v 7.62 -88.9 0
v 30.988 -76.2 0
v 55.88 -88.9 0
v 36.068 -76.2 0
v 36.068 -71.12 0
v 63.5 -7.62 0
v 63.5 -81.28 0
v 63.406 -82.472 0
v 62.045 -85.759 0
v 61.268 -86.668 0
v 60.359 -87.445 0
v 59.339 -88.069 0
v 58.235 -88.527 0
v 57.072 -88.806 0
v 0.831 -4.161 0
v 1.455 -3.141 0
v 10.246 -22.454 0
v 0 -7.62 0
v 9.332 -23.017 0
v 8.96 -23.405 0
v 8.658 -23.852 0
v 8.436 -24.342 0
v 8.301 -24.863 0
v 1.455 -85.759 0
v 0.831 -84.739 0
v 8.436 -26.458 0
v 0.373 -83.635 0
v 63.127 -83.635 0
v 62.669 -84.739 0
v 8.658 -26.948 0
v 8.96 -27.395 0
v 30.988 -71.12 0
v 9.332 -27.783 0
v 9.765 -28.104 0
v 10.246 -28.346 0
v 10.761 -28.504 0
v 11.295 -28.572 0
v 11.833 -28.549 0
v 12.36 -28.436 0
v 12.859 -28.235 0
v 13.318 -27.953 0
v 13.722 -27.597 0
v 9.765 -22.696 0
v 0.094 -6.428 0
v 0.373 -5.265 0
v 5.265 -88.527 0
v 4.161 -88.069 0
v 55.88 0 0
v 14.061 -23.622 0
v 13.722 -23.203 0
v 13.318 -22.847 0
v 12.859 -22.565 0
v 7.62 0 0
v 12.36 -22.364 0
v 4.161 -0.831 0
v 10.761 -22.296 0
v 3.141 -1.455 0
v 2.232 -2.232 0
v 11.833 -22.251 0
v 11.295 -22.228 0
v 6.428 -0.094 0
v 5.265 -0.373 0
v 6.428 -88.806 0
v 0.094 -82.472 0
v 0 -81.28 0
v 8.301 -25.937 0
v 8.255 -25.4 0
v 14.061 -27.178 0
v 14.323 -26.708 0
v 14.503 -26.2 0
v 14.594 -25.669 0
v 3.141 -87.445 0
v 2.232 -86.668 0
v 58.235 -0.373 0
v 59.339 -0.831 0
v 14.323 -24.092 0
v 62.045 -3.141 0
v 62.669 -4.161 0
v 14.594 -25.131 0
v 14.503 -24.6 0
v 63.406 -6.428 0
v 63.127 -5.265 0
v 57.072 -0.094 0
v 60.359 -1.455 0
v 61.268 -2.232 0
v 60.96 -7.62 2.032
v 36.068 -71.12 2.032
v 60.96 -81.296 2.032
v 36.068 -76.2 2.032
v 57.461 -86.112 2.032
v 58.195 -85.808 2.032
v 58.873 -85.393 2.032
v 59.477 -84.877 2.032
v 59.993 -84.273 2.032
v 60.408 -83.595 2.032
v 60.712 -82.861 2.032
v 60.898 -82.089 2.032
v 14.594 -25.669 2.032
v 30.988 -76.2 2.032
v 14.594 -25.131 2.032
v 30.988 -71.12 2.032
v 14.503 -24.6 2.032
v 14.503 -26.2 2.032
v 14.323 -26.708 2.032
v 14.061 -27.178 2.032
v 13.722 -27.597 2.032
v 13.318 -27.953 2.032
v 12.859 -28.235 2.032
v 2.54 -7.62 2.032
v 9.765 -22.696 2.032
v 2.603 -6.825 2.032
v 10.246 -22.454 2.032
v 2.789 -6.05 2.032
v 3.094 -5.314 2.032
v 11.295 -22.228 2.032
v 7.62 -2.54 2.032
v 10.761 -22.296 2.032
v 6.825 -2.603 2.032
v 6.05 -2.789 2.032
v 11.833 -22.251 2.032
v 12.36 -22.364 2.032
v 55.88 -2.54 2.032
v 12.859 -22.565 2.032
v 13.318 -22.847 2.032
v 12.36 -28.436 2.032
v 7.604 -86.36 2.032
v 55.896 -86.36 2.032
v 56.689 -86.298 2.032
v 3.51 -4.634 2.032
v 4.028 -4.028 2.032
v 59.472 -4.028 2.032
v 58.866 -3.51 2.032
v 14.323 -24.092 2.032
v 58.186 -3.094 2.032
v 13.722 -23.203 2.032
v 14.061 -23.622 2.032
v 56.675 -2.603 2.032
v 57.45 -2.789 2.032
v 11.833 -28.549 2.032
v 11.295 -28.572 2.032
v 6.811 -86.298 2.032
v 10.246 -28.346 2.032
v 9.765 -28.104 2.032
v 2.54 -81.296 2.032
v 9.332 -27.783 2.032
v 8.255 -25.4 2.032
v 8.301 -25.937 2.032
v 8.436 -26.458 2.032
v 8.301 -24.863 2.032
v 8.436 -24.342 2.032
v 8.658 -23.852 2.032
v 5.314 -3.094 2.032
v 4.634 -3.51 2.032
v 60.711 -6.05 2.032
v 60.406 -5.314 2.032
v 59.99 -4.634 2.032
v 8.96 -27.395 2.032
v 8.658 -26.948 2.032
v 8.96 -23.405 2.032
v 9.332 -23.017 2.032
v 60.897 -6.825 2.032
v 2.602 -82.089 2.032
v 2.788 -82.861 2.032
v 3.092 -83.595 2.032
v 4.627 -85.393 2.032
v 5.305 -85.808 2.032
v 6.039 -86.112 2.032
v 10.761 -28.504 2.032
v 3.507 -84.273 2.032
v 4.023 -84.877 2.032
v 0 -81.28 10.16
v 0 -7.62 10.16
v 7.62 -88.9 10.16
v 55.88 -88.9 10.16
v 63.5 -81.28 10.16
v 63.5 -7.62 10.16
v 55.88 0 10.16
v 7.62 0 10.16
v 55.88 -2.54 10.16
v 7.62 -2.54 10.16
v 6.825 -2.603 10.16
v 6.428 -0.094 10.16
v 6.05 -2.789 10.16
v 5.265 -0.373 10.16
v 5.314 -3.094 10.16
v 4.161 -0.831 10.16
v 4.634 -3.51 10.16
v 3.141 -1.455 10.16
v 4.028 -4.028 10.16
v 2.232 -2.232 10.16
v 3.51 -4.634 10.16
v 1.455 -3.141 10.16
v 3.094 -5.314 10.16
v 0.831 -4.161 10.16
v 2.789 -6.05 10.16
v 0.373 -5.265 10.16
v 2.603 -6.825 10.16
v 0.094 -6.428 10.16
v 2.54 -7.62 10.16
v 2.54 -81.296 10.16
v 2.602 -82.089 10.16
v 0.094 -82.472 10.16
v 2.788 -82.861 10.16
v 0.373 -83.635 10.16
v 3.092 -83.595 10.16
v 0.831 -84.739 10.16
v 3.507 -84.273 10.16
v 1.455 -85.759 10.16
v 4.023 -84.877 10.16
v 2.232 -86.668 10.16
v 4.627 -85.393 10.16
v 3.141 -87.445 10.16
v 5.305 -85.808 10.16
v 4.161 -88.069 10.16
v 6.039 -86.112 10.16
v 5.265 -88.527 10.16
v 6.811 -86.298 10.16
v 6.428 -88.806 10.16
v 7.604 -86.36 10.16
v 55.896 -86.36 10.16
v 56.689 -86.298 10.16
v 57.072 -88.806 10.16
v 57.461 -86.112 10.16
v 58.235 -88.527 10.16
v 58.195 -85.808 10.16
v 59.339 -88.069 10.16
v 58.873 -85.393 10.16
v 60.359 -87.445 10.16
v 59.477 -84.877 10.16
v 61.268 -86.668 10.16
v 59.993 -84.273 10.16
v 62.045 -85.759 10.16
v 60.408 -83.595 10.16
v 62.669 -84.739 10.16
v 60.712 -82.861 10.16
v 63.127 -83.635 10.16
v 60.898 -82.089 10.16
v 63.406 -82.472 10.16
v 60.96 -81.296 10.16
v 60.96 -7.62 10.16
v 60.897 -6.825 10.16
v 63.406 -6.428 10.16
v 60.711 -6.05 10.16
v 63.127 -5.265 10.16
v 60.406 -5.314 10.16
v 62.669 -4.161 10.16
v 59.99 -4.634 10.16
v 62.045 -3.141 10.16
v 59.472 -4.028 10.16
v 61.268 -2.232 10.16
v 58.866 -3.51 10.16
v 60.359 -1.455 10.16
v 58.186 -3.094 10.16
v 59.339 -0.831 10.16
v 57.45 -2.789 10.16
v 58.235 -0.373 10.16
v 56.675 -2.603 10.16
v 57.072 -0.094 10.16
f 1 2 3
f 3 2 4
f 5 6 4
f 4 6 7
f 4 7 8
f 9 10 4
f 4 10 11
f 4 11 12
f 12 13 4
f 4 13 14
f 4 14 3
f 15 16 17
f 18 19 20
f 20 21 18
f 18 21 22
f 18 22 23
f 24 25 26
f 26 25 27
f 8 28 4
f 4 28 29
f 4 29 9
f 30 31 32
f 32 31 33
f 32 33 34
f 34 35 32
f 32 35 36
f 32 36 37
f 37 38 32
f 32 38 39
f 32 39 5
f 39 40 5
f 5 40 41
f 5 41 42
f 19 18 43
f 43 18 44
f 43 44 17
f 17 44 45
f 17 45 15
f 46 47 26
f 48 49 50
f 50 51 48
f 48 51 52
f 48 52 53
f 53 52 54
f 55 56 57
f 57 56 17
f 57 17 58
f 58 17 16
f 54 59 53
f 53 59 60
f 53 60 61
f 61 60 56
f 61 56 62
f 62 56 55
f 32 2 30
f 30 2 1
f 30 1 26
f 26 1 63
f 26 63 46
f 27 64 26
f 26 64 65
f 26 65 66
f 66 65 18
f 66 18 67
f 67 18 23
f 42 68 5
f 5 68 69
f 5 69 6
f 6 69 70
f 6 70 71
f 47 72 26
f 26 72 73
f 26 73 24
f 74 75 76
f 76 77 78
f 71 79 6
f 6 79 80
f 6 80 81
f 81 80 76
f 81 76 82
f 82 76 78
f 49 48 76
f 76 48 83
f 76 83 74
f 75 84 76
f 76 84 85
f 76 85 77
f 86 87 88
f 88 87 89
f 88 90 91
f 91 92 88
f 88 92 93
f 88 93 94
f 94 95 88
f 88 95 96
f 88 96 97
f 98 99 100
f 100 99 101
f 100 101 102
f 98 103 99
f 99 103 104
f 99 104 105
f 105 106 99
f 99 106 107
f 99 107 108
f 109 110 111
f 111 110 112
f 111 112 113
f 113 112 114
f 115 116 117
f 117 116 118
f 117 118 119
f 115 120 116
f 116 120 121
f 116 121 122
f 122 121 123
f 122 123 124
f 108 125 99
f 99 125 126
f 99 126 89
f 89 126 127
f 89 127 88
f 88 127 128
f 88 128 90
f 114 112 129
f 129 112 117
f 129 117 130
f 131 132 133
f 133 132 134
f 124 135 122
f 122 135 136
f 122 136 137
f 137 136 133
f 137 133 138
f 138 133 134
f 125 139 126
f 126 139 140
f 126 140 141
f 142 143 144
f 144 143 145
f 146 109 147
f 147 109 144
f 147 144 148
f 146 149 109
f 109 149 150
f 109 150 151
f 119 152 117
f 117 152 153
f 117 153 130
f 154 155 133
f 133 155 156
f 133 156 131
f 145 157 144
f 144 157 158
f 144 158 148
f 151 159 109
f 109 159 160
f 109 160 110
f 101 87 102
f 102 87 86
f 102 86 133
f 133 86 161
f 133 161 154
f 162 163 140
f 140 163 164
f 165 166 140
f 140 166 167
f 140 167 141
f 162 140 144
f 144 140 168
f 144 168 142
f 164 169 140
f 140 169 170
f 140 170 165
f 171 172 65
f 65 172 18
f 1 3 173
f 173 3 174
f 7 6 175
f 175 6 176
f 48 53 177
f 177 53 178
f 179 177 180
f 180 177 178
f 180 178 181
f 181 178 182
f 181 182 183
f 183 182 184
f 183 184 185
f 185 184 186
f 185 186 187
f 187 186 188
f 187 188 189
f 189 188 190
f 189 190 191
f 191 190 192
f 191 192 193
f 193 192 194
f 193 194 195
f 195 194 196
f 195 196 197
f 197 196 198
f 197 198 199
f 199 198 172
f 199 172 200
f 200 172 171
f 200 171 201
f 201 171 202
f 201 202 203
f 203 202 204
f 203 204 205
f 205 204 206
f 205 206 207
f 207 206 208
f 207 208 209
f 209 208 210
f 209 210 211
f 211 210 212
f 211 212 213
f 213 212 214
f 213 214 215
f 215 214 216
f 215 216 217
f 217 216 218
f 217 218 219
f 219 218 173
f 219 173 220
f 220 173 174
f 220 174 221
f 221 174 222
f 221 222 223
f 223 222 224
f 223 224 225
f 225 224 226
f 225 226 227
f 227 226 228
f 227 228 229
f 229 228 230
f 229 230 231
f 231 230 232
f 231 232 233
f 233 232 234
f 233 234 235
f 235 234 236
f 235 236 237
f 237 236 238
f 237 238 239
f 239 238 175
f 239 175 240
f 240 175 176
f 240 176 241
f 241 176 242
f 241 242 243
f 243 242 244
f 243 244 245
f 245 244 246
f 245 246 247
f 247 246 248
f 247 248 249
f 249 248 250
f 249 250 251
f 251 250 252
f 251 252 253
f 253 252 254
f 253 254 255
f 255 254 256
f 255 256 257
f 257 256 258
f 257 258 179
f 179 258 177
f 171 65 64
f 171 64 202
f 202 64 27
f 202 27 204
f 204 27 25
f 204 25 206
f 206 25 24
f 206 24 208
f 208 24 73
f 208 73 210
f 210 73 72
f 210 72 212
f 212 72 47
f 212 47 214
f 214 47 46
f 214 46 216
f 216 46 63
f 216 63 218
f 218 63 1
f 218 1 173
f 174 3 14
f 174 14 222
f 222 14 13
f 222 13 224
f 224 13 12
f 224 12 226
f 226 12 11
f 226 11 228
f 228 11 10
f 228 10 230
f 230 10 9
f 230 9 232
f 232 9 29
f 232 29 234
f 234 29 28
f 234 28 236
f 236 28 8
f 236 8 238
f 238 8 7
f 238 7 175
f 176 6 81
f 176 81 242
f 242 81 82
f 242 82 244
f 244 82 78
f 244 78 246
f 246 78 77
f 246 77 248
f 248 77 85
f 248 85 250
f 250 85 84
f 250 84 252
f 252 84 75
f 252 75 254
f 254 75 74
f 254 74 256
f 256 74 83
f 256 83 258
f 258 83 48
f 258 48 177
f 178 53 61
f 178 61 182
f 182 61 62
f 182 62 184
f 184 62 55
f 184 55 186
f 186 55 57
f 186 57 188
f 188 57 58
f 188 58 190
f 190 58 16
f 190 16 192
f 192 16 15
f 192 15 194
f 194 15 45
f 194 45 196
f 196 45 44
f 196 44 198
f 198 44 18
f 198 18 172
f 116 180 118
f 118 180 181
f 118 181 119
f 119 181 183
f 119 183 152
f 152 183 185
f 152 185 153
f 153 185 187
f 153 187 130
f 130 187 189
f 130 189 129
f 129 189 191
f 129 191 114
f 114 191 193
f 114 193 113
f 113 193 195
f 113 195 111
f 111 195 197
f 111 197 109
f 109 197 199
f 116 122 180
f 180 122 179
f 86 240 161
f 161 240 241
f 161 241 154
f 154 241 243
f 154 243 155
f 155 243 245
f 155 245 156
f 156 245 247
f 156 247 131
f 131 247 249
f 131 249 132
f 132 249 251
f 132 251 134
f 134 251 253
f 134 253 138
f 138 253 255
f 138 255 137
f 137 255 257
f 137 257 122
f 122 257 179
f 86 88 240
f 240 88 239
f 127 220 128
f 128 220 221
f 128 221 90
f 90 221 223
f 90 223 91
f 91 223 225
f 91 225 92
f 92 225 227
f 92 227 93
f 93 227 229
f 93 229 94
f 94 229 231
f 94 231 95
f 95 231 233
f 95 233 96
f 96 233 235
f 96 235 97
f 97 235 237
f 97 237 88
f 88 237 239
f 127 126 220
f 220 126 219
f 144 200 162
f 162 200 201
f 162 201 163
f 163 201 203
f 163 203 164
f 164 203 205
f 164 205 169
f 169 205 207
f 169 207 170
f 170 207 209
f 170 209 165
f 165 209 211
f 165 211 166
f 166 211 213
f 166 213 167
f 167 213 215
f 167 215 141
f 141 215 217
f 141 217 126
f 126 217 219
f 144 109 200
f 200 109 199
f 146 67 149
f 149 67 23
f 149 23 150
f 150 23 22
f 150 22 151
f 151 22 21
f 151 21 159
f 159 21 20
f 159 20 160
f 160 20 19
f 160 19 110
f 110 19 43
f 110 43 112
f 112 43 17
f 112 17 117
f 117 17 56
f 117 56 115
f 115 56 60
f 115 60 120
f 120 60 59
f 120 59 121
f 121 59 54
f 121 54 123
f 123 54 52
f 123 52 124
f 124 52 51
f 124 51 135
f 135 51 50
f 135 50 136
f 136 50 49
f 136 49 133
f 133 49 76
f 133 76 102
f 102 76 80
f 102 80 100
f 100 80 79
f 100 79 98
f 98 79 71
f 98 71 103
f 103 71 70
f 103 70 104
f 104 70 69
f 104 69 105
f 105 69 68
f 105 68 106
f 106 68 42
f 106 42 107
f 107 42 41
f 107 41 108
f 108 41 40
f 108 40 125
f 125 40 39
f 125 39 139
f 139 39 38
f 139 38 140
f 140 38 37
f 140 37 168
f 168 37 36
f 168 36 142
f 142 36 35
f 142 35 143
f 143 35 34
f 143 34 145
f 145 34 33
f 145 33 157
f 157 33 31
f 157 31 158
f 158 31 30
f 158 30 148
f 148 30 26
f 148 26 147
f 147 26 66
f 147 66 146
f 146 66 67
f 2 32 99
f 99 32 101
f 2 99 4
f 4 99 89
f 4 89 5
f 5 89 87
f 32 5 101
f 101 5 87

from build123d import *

# Parameters (mm, degrees)
SKETCH1_W           = 63.5
SKETCH1_H           = 88.9
BOSS_EXTRUDE1_DEPTH = 10.16
FILLET1_R           = 7.62
CUT_EXTRUDE1_DEPTH  = 8.128
SKETCH3_W           = 5.08
SKETCH3_H           = 5.08
SKETCH3_R           = 3.175
CUT_EXTRUDE2_DEPTH  = 12.7


with BuildPart() as part:
    # Sketch1 → Boss-Extrude1 (new body)
    with BuildSketch(Plane.XY):
        with Locations((31.75, -44.45)):
            Rectangle(SKETCH1_W, SKETCH1_H)
    extrude(amount=BOSS_EXTRUDE1_DEPTH)

    # Fillet1
    fillet1_edges = [part.edges().sort_by_distance(p)[0] for p in [
        (0, 0, 5.08),
        (63.5, 0, 5.08),
        (63.5, -88.9, 5.08),
        (0, -88.9, 5.08),
    ]]
    fillet(fillet1_edges, radius=FILLET1_R)

    # Sketch2 → Cut-Extrude1 (cut)
    with BuildSketch(Plane.XY.offset(10.16)):
        with BuildLine():
            Line((7.62, -2.54), (55.88, -2.54))
            ThreePointArc((55.88, -2.54), (59.472102448, -4.027897552), (60.96, -7.62))
            Line((60.96, -7.62), (60.96, -81.296436042))
            ThreePointArc((60.96, -81.296436042), (59.476916454, -84.876916454), (55.896436042, -86.36))
            Line((55.896436042, -86.36), (7.603563958, -86.36))
            ThreePointArc((7.603563958, -86.36), (4.023083546, -84.876916454), (2.54, -81.296436042))
            Line((2.54, -81.296436042), (2.54, -7.62))
            ThreePointArc((2.54, -7.62), (4.027897552, -4.027897552), (7.62, -2.54))
        make_face()
    extrude(amount=-CUT_EXTRUDE1_DEPTH, mode=Mode.SUBTRACT)

    # Sketch3 → Cut-Extrude2 (cut)
    with BuildSketch(Plane(origin=(0, 0, 0), x_dir=(-1, 0, 0), z_dir=(0, 0, -1))):
        with Locations((-33.528, -73.66)):
            Rectangle(SKETCH3_W, SKETCH3_H)
        with Locations((-11.43, -25.4)):
            Circle(SKETCH3_R)
    extrude(amount=-CUT_EXTRUDE2_DEPTH, mode=Mode.SUBTRACT)


solid = part.part
